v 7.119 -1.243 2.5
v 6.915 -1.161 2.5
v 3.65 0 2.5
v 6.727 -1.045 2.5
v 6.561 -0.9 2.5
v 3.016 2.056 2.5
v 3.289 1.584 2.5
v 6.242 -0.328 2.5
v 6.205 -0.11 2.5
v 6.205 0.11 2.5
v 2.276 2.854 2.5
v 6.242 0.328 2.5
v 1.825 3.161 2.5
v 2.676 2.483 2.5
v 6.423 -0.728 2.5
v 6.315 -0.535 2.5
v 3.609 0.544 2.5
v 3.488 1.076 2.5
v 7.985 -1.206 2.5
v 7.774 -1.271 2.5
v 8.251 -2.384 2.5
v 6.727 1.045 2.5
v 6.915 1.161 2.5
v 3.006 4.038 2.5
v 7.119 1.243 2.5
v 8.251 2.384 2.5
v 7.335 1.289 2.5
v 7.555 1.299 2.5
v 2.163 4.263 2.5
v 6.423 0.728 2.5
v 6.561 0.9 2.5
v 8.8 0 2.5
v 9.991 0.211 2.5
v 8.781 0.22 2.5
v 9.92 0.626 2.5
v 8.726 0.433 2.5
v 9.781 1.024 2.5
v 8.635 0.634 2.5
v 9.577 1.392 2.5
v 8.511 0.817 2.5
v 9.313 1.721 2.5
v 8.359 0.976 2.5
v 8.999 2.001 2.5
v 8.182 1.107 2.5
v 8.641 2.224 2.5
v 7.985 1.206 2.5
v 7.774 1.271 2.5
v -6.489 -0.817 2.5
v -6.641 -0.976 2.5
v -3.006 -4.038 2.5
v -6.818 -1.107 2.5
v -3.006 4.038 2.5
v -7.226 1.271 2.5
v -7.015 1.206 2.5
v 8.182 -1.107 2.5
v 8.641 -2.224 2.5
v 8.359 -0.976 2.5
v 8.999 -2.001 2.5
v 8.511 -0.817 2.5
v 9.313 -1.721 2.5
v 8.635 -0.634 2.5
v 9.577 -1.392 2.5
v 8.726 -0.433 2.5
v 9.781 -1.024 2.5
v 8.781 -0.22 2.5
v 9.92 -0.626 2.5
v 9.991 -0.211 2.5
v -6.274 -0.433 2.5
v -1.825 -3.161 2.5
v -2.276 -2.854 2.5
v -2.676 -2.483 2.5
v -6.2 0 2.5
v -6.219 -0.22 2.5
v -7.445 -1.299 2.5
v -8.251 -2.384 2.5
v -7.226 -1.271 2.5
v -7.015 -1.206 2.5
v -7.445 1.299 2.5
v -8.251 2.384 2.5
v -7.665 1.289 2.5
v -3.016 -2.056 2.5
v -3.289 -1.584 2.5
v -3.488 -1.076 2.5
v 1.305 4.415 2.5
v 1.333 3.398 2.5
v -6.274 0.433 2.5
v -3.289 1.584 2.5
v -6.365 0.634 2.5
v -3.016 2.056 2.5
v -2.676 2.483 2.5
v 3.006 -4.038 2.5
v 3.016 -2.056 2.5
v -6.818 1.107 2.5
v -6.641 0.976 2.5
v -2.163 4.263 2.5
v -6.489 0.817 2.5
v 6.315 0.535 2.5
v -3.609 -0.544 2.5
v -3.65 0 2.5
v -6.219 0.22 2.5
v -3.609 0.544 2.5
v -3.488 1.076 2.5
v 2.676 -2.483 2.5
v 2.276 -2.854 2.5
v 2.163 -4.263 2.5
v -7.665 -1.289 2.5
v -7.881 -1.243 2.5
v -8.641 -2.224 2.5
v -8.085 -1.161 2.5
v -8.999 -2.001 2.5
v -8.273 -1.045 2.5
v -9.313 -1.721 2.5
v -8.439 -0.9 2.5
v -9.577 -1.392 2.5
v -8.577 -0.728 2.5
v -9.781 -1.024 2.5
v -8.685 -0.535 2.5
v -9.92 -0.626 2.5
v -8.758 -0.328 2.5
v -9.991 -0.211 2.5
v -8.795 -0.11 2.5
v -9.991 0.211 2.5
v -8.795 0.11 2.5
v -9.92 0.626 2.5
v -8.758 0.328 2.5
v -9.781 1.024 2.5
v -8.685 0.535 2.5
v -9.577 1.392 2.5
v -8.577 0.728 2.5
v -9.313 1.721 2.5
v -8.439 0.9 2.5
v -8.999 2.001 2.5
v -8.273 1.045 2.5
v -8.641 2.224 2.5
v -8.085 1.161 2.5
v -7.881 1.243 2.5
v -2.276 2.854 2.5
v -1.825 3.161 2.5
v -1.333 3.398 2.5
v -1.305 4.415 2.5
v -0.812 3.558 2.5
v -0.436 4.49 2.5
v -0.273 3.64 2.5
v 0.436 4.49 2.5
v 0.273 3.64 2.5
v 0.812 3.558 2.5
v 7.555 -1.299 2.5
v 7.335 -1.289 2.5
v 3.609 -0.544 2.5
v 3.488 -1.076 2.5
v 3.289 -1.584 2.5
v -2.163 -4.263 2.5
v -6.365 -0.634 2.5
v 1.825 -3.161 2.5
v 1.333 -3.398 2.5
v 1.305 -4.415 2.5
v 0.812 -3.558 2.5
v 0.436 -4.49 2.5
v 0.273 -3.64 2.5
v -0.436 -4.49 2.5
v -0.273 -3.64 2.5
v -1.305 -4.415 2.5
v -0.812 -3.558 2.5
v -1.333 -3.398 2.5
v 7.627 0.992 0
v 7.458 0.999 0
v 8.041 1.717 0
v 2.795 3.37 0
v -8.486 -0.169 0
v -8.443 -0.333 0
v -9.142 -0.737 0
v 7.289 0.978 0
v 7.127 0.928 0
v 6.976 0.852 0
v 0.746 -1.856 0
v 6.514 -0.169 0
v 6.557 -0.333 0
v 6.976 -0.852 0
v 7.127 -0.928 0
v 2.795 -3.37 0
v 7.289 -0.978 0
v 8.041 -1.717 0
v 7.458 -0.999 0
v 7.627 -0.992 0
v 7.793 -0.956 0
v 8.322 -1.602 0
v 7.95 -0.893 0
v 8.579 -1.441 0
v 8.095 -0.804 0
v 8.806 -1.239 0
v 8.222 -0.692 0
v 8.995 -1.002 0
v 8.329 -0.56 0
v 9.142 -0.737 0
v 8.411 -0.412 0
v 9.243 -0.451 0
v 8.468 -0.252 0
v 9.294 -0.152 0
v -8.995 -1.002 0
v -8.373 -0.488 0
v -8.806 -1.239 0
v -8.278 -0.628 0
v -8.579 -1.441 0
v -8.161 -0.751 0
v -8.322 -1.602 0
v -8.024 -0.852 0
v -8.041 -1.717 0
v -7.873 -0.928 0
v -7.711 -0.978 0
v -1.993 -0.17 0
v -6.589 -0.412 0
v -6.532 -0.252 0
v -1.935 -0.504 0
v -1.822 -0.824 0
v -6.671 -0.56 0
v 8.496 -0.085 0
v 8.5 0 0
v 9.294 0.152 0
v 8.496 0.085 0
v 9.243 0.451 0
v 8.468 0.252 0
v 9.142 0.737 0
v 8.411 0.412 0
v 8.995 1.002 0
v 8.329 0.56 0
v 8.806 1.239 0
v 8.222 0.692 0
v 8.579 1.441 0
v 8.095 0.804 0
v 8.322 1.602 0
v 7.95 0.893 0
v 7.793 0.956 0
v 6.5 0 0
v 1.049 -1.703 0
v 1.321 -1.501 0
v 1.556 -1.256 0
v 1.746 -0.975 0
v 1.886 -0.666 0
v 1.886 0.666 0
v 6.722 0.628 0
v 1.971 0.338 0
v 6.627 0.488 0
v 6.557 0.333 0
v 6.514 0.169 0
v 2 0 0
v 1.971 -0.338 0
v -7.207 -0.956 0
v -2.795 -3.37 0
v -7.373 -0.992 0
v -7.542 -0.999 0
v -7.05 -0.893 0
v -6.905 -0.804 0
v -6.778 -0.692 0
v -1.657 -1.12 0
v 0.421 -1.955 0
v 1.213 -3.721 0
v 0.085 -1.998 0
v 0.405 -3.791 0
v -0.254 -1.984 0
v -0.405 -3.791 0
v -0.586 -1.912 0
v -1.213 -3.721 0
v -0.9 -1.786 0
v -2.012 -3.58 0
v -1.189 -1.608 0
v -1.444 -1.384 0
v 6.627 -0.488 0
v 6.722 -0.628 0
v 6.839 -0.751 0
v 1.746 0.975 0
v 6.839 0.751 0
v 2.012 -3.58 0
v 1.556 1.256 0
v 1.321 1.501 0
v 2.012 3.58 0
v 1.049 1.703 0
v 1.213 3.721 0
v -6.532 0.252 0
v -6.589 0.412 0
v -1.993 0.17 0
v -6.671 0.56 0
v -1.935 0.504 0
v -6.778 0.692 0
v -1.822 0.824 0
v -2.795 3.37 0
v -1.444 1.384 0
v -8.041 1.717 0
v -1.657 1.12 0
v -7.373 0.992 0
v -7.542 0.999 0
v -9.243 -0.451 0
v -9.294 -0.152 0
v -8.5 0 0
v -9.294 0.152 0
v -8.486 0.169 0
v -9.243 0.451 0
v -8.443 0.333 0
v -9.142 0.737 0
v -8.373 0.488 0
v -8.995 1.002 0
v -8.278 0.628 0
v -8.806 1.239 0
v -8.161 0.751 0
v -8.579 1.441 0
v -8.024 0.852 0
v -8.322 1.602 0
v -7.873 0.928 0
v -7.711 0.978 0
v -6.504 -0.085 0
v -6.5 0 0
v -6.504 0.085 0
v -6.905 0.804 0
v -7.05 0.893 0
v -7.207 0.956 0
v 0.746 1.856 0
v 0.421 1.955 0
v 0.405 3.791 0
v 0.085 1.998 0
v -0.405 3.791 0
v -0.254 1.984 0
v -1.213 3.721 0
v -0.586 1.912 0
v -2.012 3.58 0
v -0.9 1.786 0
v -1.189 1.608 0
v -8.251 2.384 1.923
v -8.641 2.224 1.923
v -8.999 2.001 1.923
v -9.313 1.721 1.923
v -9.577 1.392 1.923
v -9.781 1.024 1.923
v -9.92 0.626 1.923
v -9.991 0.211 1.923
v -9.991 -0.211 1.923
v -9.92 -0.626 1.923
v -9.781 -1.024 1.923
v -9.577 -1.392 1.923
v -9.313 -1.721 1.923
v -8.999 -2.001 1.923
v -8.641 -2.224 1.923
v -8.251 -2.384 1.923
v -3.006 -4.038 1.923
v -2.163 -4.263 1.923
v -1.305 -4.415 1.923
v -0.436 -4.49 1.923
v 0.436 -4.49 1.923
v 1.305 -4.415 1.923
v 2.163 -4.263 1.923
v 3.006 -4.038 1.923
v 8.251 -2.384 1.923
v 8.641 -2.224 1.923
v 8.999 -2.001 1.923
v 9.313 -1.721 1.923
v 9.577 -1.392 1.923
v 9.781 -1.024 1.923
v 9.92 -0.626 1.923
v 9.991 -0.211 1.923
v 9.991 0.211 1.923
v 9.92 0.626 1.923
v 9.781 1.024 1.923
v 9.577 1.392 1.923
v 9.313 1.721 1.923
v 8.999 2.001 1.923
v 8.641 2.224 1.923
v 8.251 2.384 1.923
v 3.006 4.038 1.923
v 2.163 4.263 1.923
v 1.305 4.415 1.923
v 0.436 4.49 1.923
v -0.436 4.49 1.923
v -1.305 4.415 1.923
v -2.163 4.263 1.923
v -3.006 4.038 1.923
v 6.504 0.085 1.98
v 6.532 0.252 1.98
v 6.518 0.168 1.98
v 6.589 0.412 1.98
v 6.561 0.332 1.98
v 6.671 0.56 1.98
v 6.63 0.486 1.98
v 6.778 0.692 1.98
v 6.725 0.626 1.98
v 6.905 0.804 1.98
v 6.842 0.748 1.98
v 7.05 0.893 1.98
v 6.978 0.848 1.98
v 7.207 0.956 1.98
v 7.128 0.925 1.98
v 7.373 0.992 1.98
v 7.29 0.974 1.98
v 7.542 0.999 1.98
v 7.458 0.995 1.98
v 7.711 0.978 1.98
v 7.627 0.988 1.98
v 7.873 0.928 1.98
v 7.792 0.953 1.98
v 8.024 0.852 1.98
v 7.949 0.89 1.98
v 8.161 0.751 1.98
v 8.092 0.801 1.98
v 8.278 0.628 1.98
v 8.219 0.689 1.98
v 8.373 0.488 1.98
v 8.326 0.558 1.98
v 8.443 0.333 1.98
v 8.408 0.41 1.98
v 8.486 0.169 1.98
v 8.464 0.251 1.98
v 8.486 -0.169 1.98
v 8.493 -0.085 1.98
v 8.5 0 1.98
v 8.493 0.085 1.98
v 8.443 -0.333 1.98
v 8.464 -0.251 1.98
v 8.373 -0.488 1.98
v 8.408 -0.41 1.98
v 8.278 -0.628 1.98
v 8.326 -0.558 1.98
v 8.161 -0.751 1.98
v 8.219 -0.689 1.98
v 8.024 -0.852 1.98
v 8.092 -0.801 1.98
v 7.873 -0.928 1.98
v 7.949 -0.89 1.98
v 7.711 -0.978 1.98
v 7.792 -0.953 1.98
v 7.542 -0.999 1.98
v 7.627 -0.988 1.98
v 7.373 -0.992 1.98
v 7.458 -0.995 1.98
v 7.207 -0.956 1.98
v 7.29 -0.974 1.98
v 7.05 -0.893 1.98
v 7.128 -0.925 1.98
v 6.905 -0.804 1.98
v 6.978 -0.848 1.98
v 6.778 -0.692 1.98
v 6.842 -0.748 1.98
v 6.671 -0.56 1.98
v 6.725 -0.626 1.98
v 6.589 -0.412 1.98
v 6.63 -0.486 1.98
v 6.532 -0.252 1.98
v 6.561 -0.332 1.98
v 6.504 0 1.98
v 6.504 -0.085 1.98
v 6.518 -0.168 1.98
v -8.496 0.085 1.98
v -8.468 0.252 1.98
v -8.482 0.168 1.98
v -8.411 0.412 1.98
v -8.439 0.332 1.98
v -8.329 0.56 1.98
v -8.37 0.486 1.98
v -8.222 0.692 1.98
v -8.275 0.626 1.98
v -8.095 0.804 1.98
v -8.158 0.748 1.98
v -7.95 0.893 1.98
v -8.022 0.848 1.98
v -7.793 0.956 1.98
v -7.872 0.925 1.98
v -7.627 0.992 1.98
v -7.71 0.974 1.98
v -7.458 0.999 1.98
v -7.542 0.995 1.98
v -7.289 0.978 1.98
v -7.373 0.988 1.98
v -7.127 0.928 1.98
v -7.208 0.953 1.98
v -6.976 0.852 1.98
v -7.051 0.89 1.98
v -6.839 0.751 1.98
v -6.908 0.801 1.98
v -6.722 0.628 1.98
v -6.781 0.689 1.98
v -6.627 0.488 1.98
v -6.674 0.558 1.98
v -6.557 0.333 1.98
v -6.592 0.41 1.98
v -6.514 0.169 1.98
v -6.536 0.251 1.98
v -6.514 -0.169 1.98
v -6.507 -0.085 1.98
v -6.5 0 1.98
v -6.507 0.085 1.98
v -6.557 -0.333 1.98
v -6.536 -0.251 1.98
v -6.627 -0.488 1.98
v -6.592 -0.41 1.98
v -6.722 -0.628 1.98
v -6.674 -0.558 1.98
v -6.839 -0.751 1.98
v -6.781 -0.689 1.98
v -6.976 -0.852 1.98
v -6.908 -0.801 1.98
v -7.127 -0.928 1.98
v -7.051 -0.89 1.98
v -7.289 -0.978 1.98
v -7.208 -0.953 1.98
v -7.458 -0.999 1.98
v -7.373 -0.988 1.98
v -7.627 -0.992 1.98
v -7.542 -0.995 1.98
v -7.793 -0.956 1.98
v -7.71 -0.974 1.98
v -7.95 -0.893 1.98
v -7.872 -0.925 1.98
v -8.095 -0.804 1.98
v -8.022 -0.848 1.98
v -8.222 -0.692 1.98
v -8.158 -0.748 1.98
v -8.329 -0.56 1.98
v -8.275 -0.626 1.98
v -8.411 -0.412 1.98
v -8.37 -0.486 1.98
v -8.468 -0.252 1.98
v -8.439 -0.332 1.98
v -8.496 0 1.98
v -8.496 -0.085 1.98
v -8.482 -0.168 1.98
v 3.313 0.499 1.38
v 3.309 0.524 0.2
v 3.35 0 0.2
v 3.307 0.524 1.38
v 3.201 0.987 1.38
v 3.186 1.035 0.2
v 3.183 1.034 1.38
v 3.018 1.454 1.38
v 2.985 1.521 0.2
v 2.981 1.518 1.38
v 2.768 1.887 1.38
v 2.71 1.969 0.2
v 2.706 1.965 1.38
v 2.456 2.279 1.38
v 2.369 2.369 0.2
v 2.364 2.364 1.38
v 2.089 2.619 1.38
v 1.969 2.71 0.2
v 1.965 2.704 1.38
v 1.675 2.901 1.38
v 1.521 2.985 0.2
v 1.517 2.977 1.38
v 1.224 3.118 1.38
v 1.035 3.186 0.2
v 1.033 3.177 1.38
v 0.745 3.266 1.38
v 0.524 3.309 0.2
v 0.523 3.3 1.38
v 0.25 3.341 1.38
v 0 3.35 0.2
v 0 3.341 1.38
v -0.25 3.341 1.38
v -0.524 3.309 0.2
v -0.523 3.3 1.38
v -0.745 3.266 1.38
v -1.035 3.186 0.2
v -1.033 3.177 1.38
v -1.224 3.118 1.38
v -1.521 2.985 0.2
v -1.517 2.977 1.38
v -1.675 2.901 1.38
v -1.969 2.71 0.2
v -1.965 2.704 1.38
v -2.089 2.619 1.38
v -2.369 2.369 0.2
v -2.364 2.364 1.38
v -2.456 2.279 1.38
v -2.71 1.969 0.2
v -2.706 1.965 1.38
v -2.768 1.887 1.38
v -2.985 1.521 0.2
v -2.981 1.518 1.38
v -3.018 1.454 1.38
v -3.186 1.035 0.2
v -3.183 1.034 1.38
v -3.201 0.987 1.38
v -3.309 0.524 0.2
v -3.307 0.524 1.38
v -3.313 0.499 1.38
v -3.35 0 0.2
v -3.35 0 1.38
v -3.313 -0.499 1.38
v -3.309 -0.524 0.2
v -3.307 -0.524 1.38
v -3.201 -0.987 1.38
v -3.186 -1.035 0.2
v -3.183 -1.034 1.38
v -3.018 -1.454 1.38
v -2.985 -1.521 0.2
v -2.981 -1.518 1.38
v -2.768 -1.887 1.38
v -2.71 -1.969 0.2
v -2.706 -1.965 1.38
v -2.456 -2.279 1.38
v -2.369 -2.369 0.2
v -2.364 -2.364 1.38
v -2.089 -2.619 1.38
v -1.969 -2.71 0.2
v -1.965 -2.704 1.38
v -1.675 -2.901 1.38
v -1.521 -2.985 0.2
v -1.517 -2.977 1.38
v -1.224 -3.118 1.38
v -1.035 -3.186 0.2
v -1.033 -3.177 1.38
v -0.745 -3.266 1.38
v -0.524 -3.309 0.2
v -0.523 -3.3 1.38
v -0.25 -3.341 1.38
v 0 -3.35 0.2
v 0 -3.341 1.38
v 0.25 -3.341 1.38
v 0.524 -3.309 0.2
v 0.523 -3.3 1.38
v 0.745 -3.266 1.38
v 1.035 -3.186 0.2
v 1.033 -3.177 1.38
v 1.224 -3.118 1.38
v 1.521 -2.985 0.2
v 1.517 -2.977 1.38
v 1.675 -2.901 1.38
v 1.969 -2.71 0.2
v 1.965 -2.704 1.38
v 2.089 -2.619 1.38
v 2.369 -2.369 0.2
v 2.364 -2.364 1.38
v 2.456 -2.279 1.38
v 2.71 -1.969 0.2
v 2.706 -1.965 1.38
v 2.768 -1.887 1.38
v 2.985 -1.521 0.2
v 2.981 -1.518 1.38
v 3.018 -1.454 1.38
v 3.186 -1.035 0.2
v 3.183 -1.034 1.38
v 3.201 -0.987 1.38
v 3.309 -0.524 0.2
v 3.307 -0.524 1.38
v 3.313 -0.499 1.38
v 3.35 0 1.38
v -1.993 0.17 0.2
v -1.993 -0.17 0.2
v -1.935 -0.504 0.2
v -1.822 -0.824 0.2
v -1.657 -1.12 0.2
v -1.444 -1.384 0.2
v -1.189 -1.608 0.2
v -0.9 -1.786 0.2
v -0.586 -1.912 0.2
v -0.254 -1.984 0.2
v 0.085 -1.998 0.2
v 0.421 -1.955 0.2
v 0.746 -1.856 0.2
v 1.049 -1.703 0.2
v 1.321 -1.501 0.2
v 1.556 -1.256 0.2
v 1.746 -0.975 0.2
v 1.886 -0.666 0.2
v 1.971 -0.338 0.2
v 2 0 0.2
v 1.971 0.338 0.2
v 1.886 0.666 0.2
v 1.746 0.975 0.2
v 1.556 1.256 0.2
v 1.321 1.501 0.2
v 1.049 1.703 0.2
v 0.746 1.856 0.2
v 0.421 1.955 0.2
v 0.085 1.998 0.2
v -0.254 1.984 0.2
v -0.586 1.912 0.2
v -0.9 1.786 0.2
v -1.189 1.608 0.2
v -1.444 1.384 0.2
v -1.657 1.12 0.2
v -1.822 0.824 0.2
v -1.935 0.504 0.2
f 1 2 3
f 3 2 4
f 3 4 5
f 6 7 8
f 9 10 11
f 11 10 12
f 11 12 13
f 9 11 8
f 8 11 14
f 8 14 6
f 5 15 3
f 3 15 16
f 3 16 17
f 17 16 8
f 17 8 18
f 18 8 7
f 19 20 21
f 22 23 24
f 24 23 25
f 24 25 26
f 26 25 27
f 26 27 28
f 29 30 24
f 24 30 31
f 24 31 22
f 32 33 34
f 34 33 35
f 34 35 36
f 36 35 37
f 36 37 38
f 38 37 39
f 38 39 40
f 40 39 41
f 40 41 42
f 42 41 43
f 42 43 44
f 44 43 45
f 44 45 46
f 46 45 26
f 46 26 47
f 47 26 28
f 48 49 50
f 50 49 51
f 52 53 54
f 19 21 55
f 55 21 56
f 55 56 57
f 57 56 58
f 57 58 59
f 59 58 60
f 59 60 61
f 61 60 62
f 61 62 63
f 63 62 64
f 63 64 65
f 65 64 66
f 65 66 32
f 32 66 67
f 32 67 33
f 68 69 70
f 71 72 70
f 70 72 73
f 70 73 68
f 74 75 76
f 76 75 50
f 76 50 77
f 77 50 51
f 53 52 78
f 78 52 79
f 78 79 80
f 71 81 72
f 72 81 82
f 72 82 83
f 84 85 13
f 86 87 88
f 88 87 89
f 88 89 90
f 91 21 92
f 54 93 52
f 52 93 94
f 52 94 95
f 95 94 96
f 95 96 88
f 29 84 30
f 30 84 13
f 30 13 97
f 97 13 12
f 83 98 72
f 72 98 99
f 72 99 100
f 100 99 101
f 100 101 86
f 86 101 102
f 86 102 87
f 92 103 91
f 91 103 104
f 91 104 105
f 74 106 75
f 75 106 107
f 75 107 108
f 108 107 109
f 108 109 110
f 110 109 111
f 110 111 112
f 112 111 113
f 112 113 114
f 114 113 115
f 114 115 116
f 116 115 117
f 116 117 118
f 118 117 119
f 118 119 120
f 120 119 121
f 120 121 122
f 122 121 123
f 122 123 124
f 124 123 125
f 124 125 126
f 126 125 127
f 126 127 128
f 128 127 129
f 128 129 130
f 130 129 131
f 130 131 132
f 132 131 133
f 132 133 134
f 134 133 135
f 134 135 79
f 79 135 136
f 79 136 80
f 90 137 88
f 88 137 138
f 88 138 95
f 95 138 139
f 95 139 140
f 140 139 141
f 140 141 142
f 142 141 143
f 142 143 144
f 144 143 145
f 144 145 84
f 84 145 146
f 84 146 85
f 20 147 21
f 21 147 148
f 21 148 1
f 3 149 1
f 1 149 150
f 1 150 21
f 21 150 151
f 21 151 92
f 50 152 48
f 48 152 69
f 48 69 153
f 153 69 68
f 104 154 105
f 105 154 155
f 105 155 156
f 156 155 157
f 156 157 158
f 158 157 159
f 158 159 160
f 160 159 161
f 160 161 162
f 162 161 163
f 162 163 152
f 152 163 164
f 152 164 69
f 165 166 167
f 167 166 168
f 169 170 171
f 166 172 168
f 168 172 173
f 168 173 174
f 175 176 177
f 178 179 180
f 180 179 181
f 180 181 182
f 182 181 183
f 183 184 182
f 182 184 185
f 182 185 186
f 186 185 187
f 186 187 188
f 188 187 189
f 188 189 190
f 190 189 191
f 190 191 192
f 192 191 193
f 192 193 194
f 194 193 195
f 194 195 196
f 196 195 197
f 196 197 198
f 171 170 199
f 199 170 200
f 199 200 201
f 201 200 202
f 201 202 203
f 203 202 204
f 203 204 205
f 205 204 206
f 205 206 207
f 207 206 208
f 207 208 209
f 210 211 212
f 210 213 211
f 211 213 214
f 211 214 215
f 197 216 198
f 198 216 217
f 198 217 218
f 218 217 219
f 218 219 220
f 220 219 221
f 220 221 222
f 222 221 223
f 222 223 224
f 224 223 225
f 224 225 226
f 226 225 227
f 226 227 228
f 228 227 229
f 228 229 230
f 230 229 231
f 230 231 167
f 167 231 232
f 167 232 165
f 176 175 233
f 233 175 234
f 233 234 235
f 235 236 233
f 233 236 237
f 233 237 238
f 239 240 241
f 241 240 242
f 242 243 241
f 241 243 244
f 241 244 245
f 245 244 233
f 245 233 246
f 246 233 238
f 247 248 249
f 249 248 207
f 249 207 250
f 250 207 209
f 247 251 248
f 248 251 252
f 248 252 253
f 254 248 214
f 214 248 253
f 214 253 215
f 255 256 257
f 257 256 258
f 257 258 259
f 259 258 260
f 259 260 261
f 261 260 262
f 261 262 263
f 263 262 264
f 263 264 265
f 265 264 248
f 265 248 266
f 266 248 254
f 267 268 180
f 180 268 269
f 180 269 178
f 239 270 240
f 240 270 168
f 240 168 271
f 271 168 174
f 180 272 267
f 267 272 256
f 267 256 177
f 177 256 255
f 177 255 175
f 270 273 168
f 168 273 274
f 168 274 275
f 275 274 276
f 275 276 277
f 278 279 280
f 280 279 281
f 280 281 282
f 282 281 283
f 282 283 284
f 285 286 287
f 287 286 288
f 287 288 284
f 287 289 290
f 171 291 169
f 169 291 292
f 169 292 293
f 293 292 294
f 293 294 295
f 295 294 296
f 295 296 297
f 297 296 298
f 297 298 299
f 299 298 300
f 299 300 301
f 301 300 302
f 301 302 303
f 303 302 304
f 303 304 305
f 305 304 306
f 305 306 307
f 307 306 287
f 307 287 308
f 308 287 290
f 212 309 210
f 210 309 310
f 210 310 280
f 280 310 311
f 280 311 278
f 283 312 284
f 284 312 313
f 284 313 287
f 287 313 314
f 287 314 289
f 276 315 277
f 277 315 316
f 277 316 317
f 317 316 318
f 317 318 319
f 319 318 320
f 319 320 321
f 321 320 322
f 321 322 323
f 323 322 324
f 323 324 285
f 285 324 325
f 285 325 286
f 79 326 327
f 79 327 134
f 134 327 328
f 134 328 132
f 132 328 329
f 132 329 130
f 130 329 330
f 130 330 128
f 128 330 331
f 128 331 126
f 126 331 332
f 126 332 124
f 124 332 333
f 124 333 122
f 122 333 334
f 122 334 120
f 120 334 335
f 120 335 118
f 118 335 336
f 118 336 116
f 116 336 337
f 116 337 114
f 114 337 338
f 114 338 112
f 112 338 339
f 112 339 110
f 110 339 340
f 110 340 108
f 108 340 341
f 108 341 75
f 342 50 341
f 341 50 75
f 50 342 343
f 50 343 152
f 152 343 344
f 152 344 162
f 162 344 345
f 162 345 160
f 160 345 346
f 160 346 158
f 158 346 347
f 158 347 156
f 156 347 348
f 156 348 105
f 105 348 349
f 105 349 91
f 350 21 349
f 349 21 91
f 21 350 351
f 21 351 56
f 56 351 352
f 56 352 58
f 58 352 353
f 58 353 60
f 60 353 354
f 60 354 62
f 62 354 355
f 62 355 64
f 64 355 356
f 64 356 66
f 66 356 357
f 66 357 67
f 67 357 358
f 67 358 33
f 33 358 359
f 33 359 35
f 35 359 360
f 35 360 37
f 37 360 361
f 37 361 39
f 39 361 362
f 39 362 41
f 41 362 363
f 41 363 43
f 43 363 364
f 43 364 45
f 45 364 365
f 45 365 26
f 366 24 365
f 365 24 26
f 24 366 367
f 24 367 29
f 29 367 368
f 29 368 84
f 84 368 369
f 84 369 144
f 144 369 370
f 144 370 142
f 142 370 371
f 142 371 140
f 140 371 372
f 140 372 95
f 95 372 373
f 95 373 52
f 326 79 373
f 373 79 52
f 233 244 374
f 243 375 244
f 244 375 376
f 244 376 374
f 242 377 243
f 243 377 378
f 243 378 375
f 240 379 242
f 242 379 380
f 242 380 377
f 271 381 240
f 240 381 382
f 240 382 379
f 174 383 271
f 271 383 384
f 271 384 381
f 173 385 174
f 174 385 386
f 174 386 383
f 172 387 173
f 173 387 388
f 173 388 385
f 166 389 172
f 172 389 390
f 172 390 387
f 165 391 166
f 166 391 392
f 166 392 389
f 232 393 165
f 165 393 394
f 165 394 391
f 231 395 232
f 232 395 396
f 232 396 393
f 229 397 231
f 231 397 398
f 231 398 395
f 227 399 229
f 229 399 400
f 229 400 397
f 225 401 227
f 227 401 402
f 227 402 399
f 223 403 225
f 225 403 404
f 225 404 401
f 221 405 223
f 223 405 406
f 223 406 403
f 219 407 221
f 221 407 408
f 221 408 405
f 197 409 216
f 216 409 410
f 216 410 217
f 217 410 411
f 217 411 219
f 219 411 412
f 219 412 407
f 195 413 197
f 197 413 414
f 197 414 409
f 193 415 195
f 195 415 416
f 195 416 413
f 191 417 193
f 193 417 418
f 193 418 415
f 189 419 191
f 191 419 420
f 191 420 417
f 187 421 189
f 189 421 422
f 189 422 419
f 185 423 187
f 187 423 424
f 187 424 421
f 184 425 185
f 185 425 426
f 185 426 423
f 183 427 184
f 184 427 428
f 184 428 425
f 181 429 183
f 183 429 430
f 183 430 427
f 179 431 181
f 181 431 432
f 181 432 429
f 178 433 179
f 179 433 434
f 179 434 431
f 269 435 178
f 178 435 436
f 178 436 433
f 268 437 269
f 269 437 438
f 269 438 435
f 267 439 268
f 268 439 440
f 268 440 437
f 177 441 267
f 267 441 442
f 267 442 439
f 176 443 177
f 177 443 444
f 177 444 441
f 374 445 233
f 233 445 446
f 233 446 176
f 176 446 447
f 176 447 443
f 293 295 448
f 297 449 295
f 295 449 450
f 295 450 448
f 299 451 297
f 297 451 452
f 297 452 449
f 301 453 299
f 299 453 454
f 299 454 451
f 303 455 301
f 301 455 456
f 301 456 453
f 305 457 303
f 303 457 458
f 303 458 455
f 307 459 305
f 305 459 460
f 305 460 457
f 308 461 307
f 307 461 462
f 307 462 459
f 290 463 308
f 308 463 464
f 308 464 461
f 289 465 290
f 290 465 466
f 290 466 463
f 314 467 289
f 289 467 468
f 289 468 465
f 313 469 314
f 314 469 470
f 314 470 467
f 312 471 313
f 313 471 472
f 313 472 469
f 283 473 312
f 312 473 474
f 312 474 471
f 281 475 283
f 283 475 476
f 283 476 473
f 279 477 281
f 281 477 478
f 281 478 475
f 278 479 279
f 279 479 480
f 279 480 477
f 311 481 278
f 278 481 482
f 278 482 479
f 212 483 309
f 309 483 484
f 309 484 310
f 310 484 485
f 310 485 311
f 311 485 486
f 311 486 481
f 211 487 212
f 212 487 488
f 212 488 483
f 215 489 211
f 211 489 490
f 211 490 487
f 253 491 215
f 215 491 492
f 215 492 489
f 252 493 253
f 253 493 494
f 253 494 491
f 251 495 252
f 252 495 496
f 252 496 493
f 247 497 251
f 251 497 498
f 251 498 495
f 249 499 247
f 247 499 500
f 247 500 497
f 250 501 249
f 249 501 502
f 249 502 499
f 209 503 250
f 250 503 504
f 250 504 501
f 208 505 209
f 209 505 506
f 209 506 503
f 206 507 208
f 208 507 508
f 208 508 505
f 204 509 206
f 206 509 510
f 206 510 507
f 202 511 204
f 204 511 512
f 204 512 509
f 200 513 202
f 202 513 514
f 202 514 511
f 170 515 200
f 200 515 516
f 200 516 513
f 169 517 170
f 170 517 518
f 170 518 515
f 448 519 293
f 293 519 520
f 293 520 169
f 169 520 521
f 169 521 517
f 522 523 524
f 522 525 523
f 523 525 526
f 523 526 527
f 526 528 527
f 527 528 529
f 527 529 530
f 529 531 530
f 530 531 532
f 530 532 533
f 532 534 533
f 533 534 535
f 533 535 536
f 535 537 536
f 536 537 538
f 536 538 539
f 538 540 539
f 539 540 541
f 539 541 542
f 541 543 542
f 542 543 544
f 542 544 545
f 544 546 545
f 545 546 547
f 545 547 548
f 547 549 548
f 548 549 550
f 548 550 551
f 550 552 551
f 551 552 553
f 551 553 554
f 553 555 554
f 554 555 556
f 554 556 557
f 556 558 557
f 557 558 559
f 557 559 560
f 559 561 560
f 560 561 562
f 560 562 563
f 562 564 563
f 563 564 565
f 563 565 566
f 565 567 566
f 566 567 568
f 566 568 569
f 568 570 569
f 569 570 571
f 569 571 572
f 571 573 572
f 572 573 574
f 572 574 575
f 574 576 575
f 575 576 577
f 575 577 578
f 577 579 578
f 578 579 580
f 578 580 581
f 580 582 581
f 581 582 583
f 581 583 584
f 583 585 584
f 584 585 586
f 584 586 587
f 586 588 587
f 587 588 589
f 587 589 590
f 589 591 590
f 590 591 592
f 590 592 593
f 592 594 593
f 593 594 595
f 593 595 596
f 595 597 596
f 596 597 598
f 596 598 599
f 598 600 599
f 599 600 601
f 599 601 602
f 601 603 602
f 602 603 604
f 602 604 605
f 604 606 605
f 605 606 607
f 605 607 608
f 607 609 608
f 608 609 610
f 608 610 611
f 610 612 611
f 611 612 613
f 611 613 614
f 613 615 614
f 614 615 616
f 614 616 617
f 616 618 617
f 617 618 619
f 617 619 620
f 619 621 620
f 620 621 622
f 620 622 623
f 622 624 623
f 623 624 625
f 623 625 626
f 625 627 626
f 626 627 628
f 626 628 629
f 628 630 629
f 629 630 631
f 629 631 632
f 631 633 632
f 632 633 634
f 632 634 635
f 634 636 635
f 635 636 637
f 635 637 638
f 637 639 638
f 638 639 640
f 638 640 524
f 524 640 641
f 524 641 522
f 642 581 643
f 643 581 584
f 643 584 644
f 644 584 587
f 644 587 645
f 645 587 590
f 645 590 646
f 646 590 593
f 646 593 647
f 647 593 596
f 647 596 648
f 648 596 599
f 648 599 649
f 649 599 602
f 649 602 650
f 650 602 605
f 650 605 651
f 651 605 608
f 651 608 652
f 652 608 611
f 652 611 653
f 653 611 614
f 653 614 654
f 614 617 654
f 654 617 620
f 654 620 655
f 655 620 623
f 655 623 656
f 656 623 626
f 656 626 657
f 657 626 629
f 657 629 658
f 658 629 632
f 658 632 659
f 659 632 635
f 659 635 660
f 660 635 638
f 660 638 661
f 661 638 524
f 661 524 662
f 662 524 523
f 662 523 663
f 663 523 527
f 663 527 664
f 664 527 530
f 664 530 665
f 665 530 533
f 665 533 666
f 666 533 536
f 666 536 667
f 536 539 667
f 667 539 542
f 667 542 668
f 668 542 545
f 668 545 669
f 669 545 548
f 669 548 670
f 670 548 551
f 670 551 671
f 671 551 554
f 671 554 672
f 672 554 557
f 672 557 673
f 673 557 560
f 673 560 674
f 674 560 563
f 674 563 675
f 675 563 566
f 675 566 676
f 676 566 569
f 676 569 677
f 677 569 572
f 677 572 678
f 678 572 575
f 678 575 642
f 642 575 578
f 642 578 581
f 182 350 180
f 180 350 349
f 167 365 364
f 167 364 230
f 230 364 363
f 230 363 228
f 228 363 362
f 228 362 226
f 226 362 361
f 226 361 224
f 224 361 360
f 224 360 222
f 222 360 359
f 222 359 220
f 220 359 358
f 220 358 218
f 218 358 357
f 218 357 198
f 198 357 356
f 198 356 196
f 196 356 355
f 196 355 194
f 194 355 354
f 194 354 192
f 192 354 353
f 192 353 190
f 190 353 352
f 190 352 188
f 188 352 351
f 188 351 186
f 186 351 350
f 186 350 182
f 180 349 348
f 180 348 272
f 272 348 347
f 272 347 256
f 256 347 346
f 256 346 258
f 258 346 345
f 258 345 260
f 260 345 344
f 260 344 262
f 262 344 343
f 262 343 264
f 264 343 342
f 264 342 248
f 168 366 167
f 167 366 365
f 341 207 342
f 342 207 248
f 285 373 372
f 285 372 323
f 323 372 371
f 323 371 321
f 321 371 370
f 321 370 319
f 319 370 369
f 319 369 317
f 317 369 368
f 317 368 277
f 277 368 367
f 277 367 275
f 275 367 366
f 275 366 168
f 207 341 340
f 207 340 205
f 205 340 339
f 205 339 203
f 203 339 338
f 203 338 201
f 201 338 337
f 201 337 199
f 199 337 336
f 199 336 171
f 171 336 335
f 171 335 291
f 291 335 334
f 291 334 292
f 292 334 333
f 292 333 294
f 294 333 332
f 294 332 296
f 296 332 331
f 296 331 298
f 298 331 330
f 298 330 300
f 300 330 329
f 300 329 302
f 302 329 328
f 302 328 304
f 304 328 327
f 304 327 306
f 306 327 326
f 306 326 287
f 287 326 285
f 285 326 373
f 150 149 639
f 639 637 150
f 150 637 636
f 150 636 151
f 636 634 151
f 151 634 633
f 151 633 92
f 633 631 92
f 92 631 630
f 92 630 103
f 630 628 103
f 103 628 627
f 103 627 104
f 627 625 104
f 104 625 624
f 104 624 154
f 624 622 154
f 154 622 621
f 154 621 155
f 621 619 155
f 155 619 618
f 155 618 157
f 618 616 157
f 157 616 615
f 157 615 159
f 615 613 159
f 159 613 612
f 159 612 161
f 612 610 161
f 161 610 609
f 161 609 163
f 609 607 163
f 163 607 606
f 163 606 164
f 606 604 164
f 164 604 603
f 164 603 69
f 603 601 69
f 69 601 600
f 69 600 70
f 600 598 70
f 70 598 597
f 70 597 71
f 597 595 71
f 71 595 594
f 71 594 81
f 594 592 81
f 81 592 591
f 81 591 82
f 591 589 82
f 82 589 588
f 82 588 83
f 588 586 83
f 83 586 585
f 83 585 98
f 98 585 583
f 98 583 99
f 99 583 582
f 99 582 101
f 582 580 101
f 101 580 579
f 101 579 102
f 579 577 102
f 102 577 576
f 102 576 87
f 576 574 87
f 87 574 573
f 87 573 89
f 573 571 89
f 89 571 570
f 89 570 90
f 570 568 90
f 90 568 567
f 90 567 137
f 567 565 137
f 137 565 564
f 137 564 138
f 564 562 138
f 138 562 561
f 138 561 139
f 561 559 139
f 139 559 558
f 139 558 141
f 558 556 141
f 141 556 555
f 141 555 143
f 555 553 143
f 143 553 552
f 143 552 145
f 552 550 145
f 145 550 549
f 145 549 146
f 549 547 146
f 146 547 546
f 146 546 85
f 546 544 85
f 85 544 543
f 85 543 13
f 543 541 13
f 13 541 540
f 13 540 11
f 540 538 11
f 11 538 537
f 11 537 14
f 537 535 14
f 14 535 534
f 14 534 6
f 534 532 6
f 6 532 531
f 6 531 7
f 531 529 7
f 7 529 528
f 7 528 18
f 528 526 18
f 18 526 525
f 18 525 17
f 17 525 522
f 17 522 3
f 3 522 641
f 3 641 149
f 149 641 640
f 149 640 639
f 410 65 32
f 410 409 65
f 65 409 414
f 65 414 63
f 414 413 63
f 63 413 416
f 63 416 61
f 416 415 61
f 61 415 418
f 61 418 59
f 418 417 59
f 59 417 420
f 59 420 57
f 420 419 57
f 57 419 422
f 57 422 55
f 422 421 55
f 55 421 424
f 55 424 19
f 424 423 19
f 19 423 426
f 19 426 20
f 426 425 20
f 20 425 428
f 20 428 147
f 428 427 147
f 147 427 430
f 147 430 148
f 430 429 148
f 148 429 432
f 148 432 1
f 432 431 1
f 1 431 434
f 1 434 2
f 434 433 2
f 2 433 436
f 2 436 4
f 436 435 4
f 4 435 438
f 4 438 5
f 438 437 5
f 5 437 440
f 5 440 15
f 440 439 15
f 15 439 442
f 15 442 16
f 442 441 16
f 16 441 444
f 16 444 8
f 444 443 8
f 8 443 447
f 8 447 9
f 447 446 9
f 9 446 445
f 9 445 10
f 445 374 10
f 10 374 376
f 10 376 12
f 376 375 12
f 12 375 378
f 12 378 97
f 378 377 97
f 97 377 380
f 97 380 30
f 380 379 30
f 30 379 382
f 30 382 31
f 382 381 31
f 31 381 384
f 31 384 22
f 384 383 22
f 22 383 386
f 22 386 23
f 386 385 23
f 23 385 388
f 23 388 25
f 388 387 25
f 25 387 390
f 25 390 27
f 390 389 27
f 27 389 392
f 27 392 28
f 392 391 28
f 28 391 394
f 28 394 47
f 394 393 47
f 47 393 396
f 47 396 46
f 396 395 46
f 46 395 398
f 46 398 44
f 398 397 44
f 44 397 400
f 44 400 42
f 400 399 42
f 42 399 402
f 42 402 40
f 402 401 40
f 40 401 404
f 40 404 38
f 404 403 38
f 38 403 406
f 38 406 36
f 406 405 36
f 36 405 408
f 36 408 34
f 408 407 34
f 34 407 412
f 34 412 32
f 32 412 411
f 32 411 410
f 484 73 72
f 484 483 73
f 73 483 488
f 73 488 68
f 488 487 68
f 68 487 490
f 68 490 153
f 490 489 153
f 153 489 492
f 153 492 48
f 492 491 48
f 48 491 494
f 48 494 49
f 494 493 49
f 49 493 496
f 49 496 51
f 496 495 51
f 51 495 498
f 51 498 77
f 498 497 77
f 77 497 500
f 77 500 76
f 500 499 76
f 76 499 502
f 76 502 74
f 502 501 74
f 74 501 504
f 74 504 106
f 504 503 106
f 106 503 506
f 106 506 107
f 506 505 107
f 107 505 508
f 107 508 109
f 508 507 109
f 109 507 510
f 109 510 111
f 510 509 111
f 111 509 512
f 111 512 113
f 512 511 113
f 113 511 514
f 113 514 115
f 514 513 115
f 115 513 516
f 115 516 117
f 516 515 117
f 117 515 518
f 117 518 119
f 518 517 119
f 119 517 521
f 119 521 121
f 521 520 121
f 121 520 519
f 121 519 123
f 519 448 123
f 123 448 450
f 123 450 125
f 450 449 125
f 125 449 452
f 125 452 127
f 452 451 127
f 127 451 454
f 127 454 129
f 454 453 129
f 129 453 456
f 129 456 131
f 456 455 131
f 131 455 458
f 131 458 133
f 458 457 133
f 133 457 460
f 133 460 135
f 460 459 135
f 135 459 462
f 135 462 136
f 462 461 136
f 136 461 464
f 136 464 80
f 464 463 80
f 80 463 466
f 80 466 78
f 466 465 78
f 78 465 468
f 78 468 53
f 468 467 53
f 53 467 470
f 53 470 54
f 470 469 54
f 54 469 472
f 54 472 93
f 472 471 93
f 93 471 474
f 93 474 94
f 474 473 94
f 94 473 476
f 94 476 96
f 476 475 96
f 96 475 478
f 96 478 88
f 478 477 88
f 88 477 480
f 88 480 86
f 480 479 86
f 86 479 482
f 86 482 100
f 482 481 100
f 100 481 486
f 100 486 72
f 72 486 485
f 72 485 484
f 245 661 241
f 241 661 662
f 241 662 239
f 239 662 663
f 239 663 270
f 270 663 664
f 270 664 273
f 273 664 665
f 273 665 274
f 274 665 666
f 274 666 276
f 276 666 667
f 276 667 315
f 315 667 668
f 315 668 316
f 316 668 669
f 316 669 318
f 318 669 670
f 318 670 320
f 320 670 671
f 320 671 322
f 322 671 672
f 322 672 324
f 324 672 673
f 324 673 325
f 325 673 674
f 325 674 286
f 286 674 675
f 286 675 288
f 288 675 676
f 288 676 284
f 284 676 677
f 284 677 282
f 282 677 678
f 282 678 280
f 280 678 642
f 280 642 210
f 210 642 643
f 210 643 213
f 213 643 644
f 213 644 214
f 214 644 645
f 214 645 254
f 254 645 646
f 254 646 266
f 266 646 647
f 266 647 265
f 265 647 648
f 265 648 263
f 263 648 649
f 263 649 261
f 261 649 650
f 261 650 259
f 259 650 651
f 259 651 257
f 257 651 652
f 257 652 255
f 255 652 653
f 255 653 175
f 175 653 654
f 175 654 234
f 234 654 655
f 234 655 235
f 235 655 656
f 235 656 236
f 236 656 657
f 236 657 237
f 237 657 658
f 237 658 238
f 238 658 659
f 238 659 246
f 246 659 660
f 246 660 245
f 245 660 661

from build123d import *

# Parameters (mm, degrees)
SKETCH1_R           = 1
BOSS_EXTRUDE1_DEPTH = 2.5
SKETCH2_R           = 3.35
CUT_EXTRUDE1_DEPTH  = 2.3
CHAMFER1_SIZE       = 0.7
CHAMFER1_SIZE2      = 1.923234194
CHAMFER2_SIZE       = 0.3
CHAMFER2_SIZE2      = 1.119615242
CHAMFER3_SIZE       = 0.3
CHAMFER3_SIZE2      = 0.519615242
SKETCH3_R           = 2
CUT_EXTRUDE2_DEPTH  = 10


with BuildPart() as part:
    # Sketch1 → Boss-Extrude1 (new body)
    with BuildSketch(Plane.XY):
        with BuildLine():
            Line((-8.251445087, 2.384393064), (-3.005780347, 4.037572254))
            ThreePointArc((-3.005780347, 4.037572254), (0, 4.5), (3.005780347, 4.037572254))
            Line((3.005780347, 4.037572254), (8.251445087, 2.384393064))
            ThreePointArc((8.251445087, 2.384393064), (10, 0), (8.251445087, -2.384393064))
            Line((8.251445087, -2.384393064), (3.005780347, -4.037572254))
            ThreePointArc((3.005780347, -4.037572254), (0, -4.5), (-3.005780347, -4.037572254))
            Line((-3.005780347, -4.037572254), (-8.251445087, -2.384393064))
            ThreePointArc((-8.251445087, -2.384393064), (-10, 0), (-8.251445087, 2.384393064))
        make_face()
        with Locations((7.5, 0)):
            Circle(SKETCH1_R, mode=Mode.SUBTRACT)
        with Locations((-7.5, 0)):
            Circle(SKETCH1_R, mode=Mode.SUBTRACT)
    extrude(amount=BOSS_EXTRUDE1_DEPTH)

    # Sketch2 → Cut-Extrude1 (cut)
    with BuildSketch(Plane.XY.offset(2.5)):
        Circle(SKETCH2_R)
    extrude(amount=-CUT_EXTRUDE1_DEPTH, mode=Mode.SUBTRACT)

    # Chamfer1
    chamfer1_edges = [part.edges().sort_by_distance(p)[0] for p in [
        (-5.628612717, -3.210982659, 0),
        (-10, 0, 0),
        (-5.628612717, 3.210982659, 0),
        (0, 4.5, 0),
        (5.628612717, 3.210982659, 0),
        (10, 0, 0),
        (5.628612717, -3.210982659, 0),
        (0, -4.5, 0),
    ]]
    chamfer1_side = [part.faces().sort_by_distance(p)[0] for p in [
        (0, 0, 0),
    ]]
    chamfer(chamfer1_edges, length=CHAMFER1_SIZE, length2=CHAMFER1_SIZE2, reference=chamfer1_side[0])

    # Chamfer2
    chamfer2_edges = [part.edges().sort_by_distance(p)[0] for p in [
        (-3.35, 0, 2.5),
    ]]
    chamfer2_side = [part.faces().sort_by_distance(p)[0] for p in [
        (-5.562690807, -3.001807369, 2.5),
    ]]
    chamfer(chamfer2_edges, length=CHAMFER2_SIZE, length2=CHAMFER2_SIZE2, reference=chamfer2_side[0])

    # Chamfer3
    chamfer3_edges = [part.edges().sort_by_distance(p)[0] for p in [
        (6.5, 0, 2.5),
        (-8.5, 0, 2.5),
    ]]
    chamfer3_side = [part.faces().sort_by_distance(p)[0] for p in [
        (-3.869317122, 0, 2.5),
    ]]
    chamfer(chamfer3_edges, length=CHAMFER3_SIZE, length2=CHAMFER3_SIZE2, reference=chamfer3_side[0])

    # Sketch3 → Cut-Extrude2 (cut)
    with BuildSketch(Plane.XY.offset(0.2)):
        Circle(SKETCH3_R)
    extrude(amount=-CUT_EXTRUDE2_DEPTH, mode=Mode.SUBTRACT)


solid = part.part
